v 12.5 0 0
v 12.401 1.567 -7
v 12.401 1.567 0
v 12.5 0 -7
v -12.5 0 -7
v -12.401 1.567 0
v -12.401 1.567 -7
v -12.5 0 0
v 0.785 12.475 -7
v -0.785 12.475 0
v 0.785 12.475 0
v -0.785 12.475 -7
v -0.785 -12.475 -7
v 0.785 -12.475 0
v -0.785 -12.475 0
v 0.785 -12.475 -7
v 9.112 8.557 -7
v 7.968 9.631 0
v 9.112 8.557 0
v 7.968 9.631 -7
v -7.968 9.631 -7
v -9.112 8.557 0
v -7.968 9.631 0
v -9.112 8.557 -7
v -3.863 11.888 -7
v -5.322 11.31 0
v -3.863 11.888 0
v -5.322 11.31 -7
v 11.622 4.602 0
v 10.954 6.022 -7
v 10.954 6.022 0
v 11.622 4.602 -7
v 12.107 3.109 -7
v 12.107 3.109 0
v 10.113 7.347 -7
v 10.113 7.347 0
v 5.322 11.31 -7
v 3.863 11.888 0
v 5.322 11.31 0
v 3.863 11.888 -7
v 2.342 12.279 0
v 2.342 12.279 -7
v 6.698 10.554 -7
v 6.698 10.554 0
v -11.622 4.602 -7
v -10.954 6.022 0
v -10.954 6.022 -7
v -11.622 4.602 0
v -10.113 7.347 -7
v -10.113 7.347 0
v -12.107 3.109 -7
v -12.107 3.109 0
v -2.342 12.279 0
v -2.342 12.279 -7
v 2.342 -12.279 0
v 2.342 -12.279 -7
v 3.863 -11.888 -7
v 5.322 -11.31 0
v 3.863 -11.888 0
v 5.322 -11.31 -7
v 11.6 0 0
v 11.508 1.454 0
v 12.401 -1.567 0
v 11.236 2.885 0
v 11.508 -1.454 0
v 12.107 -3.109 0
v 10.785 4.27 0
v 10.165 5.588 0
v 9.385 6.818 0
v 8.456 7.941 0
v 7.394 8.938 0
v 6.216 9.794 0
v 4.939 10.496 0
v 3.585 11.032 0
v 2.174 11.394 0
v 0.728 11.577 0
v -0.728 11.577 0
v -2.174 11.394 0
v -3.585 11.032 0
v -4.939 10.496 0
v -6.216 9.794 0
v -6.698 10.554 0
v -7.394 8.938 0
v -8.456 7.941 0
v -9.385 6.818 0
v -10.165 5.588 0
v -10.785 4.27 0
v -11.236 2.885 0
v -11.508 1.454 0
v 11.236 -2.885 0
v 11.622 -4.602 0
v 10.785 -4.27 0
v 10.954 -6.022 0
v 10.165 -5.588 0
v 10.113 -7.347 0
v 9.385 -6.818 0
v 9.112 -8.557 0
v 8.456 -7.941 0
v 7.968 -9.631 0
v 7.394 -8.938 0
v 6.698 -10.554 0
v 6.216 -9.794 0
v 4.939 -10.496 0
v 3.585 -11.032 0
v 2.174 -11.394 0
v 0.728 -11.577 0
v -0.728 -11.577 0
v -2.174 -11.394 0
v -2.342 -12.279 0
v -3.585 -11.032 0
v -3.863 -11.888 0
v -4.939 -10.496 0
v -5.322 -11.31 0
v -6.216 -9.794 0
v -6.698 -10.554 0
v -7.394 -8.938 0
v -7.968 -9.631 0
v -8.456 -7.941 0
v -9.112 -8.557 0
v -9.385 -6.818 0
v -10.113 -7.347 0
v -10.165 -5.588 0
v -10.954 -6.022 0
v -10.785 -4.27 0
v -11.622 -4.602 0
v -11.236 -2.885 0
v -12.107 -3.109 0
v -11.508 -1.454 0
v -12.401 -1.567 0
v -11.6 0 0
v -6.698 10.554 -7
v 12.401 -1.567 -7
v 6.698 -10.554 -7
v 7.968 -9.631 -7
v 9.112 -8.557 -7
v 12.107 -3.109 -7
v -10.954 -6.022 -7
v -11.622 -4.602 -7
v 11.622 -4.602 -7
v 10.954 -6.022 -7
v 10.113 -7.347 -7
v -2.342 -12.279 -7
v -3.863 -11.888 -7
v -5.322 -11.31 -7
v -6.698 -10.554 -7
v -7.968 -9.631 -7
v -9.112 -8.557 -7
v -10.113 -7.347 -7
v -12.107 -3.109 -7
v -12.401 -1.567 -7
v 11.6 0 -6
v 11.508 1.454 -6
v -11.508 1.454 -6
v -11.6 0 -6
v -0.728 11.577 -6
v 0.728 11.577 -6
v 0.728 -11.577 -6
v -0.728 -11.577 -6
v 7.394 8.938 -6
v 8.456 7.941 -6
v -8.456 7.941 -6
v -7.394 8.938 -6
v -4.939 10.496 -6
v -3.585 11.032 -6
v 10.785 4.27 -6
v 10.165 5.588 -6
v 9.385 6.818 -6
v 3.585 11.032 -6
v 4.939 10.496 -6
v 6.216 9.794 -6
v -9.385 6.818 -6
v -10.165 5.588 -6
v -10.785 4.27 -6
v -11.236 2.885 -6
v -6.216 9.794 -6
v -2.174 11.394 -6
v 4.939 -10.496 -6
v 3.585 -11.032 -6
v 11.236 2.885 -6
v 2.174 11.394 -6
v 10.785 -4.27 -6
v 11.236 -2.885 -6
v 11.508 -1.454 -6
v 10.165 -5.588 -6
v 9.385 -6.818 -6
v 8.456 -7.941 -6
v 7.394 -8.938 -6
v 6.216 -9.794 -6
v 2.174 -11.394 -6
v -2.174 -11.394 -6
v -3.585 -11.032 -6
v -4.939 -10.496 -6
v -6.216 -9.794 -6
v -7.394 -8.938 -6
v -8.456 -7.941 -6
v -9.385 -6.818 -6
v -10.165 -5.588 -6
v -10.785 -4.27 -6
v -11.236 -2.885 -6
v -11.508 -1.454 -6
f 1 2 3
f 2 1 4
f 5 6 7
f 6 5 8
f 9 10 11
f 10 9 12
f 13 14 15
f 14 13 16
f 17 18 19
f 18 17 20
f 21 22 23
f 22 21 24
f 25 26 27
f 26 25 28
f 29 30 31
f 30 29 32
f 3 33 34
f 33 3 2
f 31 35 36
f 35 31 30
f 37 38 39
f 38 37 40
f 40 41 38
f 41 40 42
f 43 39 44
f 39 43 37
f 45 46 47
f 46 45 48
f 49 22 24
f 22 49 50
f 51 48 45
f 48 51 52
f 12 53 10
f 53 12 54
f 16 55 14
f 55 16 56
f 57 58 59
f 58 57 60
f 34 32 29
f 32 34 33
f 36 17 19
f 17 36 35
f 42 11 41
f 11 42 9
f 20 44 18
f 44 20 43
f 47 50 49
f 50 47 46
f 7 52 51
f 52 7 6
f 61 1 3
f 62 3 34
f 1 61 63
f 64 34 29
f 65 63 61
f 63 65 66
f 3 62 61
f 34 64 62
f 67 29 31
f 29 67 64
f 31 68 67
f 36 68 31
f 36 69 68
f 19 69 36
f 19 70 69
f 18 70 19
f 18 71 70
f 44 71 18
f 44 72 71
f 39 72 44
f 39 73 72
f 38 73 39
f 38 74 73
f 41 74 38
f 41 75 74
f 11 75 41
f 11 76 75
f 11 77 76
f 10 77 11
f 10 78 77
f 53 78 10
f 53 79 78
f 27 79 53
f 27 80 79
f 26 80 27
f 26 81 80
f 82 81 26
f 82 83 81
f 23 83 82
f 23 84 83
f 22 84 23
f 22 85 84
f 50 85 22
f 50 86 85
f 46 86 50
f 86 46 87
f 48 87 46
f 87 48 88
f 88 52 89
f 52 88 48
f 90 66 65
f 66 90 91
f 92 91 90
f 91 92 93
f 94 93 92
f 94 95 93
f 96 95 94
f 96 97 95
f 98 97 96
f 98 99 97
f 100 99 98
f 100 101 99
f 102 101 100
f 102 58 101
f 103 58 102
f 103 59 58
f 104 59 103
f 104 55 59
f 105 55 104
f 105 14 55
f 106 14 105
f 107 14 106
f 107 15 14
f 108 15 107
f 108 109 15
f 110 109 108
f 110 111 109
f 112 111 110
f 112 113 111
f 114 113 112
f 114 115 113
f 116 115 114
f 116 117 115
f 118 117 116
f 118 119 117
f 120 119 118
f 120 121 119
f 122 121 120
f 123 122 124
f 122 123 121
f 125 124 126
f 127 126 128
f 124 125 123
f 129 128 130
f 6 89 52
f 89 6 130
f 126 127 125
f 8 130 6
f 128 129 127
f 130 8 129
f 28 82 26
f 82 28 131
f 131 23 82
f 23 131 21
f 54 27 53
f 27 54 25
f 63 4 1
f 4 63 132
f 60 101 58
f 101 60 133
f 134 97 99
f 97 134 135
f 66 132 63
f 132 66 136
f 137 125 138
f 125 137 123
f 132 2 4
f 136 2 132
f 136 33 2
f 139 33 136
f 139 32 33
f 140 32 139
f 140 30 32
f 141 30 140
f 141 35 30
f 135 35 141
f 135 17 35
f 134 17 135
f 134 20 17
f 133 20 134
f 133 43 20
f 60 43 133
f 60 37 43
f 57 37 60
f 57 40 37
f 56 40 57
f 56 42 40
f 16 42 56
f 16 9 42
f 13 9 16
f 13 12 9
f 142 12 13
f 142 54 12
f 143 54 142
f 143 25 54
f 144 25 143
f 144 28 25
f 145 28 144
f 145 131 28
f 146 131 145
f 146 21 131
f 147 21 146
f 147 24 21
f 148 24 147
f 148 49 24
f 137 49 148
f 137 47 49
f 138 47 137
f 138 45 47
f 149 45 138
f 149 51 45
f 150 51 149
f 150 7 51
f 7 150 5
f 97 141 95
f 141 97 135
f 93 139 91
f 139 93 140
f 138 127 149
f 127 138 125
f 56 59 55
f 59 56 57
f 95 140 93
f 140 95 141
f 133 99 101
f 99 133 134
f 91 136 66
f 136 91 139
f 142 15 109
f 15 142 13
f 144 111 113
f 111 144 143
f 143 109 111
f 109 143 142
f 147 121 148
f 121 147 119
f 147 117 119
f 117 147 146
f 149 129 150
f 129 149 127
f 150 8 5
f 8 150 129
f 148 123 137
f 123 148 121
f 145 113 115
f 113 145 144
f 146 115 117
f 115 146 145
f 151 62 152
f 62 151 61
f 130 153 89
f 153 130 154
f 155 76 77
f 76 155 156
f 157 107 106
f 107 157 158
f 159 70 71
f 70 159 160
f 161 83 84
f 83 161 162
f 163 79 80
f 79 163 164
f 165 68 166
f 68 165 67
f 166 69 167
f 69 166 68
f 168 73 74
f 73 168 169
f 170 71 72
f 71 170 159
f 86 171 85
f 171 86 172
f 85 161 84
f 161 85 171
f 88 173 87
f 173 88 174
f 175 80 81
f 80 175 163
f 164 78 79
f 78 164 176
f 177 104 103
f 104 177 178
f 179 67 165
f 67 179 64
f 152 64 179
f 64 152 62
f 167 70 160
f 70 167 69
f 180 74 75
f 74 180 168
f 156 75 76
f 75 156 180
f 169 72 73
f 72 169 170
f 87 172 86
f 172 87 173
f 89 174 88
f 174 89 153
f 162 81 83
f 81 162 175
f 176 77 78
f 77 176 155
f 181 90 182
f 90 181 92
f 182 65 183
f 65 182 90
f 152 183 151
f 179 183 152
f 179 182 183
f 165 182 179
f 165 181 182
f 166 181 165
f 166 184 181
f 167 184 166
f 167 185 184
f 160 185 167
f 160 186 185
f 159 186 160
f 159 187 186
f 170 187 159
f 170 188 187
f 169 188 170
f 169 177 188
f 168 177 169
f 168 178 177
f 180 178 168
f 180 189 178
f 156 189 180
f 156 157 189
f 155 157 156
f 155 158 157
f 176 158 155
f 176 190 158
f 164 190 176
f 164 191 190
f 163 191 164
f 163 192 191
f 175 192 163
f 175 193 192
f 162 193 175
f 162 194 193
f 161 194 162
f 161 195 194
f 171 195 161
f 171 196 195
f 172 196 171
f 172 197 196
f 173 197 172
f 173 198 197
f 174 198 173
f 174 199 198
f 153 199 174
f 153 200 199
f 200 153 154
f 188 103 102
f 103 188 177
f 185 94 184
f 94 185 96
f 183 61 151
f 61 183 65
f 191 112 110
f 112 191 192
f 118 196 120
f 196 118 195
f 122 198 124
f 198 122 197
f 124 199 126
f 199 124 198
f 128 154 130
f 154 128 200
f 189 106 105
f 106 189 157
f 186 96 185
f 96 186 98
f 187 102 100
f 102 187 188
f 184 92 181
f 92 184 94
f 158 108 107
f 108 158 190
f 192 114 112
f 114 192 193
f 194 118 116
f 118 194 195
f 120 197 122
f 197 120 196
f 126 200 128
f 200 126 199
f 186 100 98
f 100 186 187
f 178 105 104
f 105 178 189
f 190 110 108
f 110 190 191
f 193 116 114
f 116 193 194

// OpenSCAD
$fn = 50;


difference() {
	union() {
		translate(v = [0, 0, -7.0000000000]) {
			cylinder(h = 7, r = 12.5000000000);
		}
	}
	union() {
		#translate(v = [0, 0, -6.0000000000]) {
			cylinder(h = 6, r = 11.6000000000);
		}
	}
}
